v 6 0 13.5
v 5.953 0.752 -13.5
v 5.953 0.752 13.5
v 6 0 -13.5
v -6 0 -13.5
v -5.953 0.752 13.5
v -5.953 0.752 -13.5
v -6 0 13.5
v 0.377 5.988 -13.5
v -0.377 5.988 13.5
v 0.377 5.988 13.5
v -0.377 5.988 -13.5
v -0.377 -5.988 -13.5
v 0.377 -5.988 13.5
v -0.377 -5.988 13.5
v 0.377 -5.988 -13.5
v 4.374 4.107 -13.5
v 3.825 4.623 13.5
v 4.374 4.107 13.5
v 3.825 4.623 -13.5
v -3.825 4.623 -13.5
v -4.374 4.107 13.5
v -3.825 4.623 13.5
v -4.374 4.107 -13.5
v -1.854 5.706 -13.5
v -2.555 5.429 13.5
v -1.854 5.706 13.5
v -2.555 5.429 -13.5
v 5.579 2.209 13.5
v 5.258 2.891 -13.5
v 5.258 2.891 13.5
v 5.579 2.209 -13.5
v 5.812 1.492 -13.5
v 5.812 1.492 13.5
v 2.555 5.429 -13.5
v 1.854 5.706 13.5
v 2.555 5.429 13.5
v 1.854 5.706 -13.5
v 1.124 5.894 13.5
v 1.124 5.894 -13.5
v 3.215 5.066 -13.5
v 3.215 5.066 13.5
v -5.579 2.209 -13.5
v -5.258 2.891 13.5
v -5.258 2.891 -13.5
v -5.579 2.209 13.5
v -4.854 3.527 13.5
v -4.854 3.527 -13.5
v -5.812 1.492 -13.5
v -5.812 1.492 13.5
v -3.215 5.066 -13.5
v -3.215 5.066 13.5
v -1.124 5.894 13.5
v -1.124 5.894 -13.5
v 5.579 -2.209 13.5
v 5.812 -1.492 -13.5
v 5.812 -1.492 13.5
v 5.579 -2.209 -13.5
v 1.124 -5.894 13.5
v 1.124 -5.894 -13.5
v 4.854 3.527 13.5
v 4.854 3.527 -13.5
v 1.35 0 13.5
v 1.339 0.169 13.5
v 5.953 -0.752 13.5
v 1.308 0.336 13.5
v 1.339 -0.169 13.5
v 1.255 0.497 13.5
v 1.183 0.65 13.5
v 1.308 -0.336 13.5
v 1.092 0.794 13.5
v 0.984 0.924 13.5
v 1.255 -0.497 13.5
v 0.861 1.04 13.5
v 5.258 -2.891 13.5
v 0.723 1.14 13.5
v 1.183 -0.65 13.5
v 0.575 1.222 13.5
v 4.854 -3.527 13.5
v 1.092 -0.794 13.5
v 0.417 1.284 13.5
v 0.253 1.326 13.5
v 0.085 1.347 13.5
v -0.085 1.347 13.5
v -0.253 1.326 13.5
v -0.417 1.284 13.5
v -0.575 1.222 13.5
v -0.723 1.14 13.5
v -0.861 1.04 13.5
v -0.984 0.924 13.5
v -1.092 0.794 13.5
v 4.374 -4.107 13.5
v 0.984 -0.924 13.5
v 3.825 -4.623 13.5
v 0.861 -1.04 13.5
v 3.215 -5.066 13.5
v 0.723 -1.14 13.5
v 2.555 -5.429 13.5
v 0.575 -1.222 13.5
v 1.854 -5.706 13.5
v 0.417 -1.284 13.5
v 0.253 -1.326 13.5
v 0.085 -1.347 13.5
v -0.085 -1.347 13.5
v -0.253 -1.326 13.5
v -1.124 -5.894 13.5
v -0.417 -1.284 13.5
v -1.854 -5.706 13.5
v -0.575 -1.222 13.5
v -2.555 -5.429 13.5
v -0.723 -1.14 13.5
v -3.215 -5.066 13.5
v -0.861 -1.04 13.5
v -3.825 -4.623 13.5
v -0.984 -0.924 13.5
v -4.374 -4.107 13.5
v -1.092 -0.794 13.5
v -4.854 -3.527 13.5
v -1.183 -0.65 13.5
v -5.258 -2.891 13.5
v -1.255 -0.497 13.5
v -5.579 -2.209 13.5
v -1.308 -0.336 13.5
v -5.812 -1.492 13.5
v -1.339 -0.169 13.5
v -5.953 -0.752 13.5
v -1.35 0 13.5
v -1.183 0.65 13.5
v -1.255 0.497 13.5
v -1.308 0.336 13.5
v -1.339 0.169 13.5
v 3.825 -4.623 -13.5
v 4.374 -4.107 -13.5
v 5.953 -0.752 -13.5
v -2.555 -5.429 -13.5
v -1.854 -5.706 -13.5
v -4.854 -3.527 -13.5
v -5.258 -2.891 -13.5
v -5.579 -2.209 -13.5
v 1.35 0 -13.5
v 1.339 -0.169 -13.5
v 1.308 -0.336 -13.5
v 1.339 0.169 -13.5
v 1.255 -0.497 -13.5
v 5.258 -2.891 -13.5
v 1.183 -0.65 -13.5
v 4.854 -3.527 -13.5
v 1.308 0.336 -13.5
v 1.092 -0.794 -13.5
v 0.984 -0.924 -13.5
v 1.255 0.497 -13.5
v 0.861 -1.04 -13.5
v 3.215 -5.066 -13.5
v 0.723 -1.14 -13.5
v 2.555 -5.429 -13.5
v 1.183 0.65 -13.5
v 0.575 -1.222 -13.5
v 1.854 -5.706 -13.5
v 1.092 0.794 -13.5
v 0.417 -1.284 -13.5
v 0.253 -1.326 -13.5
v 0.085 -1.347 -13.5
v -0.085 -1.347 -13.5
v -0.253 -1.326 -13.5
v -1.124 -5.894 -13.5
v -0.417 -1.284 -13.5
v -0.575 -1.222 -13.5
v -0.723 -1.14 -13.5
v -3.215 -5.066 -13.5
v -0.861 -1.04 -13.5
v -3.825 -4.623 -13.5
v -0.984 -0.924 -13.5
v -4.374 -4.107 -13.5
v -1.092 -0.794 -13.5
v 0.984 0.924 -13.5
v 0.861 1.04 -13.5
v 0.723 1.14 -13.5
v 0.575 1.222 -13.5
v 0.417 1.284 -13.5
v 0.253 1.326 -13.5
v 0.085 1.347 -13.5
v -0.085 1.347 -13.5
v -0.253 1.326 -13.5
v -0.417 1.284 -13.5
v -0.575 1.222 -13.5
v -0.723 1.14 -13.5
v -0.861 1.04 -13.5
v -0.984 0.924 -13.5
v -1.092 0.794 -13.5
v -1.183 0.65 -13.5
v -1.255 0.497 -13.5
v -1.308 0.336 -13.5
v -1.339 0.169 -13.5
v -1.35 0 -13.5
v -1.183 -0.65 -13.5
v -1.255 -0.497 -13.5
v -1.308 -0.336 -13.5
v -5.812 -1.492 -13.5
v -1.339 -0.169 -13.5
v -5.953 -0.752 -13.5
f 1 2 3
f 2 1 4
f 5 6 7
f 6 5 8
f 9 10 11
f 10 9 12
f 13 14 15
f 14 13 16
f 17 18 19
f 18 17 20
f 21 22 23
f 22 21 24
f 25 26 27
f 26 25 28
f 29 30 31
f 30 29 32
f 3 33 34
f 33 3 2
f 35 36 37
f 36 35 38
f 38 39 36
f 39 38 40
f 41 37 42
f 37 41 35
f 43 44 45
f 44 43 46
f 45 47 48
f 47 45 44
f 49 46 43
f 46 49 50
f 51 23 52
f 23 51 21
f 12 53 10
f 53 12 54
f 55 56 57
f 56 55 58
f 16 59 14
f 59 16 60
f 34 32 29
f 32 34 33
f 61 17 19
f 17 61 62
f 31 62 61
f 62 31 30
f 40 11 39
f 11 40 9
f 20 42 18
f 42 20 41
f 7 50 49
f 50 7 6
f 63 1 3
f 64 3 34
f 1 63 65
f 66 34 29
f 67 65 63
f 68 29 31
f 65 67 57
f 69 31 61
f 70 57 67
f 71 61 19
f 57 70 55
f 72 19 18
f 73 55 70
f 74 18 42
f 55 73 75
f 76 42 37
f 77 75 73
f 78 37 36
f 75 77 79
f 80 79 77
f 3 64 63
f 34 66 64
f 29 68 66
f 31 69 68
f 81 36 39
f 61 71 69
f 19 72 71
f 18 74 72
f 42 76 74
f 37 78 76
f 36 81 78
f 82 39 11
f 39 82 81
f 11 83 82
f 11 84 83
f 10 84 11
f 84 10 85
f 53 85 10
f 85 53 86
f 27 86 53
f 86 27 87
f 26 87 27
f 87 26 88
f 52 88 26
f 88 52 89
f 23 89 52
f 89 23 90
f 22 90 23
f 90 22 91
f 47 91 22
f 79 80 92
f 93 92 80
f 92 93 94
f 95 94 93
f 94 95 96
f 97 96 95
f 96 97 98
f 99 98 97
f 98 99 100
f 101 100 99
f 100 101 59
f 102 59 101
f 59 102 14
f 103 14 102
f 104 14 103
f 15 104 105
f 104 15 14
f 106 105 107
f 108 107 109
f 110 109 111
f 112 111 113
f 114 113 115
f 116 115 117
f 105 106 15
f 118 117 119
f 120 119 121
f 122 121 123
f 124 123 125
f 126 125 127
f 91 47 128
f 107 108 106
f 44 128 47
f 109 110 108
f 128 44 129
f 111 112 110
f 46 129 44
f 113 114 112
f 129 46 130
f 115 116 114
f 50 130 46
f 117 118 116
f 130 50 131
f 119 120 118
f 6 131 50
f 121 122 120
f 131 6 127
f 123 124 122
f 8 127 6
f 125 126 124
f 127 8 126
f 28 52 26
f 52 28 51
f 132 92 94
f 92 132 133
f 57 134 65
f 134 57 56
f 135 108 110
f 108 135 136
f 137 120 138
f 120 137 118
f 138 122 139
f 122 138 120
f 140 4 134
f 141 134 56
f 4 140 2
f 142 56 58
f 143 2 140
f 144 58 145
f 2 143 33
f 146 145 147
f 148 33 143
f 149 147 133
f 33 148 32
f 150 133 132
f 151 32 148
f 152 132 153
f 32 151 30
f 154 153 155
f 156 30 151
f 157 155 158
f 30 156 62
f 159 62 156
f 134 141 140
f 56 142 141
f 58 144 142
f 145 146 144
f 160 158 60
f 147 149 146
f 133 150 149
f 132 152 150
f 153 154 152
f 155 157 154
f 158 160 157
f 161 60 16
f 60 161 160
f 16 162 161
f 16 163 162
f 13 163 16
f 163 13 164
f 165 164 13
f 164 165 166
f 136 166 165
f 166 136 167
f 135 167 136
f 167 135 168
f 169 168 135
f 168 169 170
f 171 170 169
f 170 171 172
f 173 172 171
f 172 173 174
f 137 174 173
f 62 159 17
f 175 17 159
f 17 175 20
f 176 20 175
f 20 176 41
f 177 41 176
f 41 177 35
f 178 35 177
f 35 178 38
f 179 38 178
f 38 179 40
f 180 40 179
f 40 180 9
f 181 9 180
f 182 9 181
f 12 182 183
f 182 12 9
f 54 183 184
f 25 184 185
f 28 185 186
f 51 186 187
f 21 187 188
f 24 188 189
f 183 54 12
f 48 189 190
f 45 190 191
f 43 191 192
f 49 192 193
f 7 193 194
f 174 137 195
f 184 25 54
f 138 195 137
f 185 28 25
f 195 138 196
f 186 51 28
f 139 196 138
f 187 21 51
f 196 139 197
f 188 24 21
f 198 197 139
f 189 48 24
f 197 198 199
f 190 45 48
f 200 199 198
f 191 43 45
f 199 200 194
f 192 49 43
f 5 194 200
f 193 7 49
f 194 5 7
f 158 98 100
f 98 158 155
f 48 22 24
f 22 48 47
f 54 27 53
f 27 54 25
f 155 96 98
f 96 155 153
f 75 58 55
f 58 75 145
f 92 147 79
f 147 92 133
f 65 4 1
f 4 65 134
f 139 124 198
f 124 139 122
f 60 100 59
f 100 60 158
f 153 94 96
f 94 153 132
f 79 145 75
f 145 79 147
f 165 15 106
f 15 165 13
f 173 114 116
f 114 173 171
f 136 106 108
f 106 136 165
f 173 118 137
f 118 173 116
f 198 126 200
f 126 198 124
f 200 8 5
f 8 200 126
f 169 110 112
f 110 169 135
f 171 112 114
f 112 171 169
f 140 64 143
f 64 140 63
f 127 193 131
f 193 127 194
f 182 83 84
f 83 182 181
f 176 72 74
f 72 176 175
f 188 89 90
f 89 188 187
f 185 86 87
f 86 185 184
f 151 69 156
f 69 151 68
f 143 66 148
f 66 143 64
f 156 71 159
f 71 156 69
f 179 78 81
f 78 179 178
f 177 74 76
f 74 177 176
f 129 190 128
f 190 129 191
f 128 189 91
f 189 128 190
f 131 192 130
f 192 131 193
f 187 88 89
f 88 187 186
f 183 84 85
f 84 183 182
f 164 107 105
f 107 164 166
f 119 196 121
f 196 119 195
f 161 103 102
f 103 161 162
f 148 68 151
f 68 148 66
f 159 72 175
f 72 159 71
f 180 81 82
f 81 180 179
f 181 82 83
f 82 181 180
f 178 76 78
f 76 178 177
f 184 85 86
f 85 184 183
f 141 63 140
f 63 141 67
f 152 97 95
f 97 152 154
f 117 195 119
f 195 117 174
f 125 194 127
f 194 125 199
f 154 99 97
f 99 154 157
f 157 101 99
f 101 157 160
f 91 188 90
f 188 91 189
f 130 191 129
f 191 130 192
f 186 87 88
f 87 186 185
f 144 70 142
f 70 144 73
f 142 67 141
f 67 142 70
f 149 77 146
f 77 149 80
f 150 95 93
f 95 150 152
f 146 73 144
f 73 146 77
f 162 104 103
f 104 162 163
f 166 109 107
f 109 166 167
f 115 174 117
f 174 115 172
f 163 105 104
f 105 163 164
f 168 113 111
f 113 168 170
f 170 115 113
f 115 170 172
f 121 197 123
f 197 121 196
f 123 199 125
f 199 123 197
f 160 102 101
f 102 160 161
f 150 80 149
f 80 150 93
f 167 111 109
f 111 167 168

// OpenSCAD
$fn = 50;


difference() {
	union() {
		translate(v = [0, 0, -13.5000000000]) {
			cylinder(h = 27, r = 6.0000000000);
		}
	}
	union() {
		translate(v = [0, 0, -100.0000000000]) {
			cylinder(h = 200, r = 1.3500000000);
		}
	}
}
